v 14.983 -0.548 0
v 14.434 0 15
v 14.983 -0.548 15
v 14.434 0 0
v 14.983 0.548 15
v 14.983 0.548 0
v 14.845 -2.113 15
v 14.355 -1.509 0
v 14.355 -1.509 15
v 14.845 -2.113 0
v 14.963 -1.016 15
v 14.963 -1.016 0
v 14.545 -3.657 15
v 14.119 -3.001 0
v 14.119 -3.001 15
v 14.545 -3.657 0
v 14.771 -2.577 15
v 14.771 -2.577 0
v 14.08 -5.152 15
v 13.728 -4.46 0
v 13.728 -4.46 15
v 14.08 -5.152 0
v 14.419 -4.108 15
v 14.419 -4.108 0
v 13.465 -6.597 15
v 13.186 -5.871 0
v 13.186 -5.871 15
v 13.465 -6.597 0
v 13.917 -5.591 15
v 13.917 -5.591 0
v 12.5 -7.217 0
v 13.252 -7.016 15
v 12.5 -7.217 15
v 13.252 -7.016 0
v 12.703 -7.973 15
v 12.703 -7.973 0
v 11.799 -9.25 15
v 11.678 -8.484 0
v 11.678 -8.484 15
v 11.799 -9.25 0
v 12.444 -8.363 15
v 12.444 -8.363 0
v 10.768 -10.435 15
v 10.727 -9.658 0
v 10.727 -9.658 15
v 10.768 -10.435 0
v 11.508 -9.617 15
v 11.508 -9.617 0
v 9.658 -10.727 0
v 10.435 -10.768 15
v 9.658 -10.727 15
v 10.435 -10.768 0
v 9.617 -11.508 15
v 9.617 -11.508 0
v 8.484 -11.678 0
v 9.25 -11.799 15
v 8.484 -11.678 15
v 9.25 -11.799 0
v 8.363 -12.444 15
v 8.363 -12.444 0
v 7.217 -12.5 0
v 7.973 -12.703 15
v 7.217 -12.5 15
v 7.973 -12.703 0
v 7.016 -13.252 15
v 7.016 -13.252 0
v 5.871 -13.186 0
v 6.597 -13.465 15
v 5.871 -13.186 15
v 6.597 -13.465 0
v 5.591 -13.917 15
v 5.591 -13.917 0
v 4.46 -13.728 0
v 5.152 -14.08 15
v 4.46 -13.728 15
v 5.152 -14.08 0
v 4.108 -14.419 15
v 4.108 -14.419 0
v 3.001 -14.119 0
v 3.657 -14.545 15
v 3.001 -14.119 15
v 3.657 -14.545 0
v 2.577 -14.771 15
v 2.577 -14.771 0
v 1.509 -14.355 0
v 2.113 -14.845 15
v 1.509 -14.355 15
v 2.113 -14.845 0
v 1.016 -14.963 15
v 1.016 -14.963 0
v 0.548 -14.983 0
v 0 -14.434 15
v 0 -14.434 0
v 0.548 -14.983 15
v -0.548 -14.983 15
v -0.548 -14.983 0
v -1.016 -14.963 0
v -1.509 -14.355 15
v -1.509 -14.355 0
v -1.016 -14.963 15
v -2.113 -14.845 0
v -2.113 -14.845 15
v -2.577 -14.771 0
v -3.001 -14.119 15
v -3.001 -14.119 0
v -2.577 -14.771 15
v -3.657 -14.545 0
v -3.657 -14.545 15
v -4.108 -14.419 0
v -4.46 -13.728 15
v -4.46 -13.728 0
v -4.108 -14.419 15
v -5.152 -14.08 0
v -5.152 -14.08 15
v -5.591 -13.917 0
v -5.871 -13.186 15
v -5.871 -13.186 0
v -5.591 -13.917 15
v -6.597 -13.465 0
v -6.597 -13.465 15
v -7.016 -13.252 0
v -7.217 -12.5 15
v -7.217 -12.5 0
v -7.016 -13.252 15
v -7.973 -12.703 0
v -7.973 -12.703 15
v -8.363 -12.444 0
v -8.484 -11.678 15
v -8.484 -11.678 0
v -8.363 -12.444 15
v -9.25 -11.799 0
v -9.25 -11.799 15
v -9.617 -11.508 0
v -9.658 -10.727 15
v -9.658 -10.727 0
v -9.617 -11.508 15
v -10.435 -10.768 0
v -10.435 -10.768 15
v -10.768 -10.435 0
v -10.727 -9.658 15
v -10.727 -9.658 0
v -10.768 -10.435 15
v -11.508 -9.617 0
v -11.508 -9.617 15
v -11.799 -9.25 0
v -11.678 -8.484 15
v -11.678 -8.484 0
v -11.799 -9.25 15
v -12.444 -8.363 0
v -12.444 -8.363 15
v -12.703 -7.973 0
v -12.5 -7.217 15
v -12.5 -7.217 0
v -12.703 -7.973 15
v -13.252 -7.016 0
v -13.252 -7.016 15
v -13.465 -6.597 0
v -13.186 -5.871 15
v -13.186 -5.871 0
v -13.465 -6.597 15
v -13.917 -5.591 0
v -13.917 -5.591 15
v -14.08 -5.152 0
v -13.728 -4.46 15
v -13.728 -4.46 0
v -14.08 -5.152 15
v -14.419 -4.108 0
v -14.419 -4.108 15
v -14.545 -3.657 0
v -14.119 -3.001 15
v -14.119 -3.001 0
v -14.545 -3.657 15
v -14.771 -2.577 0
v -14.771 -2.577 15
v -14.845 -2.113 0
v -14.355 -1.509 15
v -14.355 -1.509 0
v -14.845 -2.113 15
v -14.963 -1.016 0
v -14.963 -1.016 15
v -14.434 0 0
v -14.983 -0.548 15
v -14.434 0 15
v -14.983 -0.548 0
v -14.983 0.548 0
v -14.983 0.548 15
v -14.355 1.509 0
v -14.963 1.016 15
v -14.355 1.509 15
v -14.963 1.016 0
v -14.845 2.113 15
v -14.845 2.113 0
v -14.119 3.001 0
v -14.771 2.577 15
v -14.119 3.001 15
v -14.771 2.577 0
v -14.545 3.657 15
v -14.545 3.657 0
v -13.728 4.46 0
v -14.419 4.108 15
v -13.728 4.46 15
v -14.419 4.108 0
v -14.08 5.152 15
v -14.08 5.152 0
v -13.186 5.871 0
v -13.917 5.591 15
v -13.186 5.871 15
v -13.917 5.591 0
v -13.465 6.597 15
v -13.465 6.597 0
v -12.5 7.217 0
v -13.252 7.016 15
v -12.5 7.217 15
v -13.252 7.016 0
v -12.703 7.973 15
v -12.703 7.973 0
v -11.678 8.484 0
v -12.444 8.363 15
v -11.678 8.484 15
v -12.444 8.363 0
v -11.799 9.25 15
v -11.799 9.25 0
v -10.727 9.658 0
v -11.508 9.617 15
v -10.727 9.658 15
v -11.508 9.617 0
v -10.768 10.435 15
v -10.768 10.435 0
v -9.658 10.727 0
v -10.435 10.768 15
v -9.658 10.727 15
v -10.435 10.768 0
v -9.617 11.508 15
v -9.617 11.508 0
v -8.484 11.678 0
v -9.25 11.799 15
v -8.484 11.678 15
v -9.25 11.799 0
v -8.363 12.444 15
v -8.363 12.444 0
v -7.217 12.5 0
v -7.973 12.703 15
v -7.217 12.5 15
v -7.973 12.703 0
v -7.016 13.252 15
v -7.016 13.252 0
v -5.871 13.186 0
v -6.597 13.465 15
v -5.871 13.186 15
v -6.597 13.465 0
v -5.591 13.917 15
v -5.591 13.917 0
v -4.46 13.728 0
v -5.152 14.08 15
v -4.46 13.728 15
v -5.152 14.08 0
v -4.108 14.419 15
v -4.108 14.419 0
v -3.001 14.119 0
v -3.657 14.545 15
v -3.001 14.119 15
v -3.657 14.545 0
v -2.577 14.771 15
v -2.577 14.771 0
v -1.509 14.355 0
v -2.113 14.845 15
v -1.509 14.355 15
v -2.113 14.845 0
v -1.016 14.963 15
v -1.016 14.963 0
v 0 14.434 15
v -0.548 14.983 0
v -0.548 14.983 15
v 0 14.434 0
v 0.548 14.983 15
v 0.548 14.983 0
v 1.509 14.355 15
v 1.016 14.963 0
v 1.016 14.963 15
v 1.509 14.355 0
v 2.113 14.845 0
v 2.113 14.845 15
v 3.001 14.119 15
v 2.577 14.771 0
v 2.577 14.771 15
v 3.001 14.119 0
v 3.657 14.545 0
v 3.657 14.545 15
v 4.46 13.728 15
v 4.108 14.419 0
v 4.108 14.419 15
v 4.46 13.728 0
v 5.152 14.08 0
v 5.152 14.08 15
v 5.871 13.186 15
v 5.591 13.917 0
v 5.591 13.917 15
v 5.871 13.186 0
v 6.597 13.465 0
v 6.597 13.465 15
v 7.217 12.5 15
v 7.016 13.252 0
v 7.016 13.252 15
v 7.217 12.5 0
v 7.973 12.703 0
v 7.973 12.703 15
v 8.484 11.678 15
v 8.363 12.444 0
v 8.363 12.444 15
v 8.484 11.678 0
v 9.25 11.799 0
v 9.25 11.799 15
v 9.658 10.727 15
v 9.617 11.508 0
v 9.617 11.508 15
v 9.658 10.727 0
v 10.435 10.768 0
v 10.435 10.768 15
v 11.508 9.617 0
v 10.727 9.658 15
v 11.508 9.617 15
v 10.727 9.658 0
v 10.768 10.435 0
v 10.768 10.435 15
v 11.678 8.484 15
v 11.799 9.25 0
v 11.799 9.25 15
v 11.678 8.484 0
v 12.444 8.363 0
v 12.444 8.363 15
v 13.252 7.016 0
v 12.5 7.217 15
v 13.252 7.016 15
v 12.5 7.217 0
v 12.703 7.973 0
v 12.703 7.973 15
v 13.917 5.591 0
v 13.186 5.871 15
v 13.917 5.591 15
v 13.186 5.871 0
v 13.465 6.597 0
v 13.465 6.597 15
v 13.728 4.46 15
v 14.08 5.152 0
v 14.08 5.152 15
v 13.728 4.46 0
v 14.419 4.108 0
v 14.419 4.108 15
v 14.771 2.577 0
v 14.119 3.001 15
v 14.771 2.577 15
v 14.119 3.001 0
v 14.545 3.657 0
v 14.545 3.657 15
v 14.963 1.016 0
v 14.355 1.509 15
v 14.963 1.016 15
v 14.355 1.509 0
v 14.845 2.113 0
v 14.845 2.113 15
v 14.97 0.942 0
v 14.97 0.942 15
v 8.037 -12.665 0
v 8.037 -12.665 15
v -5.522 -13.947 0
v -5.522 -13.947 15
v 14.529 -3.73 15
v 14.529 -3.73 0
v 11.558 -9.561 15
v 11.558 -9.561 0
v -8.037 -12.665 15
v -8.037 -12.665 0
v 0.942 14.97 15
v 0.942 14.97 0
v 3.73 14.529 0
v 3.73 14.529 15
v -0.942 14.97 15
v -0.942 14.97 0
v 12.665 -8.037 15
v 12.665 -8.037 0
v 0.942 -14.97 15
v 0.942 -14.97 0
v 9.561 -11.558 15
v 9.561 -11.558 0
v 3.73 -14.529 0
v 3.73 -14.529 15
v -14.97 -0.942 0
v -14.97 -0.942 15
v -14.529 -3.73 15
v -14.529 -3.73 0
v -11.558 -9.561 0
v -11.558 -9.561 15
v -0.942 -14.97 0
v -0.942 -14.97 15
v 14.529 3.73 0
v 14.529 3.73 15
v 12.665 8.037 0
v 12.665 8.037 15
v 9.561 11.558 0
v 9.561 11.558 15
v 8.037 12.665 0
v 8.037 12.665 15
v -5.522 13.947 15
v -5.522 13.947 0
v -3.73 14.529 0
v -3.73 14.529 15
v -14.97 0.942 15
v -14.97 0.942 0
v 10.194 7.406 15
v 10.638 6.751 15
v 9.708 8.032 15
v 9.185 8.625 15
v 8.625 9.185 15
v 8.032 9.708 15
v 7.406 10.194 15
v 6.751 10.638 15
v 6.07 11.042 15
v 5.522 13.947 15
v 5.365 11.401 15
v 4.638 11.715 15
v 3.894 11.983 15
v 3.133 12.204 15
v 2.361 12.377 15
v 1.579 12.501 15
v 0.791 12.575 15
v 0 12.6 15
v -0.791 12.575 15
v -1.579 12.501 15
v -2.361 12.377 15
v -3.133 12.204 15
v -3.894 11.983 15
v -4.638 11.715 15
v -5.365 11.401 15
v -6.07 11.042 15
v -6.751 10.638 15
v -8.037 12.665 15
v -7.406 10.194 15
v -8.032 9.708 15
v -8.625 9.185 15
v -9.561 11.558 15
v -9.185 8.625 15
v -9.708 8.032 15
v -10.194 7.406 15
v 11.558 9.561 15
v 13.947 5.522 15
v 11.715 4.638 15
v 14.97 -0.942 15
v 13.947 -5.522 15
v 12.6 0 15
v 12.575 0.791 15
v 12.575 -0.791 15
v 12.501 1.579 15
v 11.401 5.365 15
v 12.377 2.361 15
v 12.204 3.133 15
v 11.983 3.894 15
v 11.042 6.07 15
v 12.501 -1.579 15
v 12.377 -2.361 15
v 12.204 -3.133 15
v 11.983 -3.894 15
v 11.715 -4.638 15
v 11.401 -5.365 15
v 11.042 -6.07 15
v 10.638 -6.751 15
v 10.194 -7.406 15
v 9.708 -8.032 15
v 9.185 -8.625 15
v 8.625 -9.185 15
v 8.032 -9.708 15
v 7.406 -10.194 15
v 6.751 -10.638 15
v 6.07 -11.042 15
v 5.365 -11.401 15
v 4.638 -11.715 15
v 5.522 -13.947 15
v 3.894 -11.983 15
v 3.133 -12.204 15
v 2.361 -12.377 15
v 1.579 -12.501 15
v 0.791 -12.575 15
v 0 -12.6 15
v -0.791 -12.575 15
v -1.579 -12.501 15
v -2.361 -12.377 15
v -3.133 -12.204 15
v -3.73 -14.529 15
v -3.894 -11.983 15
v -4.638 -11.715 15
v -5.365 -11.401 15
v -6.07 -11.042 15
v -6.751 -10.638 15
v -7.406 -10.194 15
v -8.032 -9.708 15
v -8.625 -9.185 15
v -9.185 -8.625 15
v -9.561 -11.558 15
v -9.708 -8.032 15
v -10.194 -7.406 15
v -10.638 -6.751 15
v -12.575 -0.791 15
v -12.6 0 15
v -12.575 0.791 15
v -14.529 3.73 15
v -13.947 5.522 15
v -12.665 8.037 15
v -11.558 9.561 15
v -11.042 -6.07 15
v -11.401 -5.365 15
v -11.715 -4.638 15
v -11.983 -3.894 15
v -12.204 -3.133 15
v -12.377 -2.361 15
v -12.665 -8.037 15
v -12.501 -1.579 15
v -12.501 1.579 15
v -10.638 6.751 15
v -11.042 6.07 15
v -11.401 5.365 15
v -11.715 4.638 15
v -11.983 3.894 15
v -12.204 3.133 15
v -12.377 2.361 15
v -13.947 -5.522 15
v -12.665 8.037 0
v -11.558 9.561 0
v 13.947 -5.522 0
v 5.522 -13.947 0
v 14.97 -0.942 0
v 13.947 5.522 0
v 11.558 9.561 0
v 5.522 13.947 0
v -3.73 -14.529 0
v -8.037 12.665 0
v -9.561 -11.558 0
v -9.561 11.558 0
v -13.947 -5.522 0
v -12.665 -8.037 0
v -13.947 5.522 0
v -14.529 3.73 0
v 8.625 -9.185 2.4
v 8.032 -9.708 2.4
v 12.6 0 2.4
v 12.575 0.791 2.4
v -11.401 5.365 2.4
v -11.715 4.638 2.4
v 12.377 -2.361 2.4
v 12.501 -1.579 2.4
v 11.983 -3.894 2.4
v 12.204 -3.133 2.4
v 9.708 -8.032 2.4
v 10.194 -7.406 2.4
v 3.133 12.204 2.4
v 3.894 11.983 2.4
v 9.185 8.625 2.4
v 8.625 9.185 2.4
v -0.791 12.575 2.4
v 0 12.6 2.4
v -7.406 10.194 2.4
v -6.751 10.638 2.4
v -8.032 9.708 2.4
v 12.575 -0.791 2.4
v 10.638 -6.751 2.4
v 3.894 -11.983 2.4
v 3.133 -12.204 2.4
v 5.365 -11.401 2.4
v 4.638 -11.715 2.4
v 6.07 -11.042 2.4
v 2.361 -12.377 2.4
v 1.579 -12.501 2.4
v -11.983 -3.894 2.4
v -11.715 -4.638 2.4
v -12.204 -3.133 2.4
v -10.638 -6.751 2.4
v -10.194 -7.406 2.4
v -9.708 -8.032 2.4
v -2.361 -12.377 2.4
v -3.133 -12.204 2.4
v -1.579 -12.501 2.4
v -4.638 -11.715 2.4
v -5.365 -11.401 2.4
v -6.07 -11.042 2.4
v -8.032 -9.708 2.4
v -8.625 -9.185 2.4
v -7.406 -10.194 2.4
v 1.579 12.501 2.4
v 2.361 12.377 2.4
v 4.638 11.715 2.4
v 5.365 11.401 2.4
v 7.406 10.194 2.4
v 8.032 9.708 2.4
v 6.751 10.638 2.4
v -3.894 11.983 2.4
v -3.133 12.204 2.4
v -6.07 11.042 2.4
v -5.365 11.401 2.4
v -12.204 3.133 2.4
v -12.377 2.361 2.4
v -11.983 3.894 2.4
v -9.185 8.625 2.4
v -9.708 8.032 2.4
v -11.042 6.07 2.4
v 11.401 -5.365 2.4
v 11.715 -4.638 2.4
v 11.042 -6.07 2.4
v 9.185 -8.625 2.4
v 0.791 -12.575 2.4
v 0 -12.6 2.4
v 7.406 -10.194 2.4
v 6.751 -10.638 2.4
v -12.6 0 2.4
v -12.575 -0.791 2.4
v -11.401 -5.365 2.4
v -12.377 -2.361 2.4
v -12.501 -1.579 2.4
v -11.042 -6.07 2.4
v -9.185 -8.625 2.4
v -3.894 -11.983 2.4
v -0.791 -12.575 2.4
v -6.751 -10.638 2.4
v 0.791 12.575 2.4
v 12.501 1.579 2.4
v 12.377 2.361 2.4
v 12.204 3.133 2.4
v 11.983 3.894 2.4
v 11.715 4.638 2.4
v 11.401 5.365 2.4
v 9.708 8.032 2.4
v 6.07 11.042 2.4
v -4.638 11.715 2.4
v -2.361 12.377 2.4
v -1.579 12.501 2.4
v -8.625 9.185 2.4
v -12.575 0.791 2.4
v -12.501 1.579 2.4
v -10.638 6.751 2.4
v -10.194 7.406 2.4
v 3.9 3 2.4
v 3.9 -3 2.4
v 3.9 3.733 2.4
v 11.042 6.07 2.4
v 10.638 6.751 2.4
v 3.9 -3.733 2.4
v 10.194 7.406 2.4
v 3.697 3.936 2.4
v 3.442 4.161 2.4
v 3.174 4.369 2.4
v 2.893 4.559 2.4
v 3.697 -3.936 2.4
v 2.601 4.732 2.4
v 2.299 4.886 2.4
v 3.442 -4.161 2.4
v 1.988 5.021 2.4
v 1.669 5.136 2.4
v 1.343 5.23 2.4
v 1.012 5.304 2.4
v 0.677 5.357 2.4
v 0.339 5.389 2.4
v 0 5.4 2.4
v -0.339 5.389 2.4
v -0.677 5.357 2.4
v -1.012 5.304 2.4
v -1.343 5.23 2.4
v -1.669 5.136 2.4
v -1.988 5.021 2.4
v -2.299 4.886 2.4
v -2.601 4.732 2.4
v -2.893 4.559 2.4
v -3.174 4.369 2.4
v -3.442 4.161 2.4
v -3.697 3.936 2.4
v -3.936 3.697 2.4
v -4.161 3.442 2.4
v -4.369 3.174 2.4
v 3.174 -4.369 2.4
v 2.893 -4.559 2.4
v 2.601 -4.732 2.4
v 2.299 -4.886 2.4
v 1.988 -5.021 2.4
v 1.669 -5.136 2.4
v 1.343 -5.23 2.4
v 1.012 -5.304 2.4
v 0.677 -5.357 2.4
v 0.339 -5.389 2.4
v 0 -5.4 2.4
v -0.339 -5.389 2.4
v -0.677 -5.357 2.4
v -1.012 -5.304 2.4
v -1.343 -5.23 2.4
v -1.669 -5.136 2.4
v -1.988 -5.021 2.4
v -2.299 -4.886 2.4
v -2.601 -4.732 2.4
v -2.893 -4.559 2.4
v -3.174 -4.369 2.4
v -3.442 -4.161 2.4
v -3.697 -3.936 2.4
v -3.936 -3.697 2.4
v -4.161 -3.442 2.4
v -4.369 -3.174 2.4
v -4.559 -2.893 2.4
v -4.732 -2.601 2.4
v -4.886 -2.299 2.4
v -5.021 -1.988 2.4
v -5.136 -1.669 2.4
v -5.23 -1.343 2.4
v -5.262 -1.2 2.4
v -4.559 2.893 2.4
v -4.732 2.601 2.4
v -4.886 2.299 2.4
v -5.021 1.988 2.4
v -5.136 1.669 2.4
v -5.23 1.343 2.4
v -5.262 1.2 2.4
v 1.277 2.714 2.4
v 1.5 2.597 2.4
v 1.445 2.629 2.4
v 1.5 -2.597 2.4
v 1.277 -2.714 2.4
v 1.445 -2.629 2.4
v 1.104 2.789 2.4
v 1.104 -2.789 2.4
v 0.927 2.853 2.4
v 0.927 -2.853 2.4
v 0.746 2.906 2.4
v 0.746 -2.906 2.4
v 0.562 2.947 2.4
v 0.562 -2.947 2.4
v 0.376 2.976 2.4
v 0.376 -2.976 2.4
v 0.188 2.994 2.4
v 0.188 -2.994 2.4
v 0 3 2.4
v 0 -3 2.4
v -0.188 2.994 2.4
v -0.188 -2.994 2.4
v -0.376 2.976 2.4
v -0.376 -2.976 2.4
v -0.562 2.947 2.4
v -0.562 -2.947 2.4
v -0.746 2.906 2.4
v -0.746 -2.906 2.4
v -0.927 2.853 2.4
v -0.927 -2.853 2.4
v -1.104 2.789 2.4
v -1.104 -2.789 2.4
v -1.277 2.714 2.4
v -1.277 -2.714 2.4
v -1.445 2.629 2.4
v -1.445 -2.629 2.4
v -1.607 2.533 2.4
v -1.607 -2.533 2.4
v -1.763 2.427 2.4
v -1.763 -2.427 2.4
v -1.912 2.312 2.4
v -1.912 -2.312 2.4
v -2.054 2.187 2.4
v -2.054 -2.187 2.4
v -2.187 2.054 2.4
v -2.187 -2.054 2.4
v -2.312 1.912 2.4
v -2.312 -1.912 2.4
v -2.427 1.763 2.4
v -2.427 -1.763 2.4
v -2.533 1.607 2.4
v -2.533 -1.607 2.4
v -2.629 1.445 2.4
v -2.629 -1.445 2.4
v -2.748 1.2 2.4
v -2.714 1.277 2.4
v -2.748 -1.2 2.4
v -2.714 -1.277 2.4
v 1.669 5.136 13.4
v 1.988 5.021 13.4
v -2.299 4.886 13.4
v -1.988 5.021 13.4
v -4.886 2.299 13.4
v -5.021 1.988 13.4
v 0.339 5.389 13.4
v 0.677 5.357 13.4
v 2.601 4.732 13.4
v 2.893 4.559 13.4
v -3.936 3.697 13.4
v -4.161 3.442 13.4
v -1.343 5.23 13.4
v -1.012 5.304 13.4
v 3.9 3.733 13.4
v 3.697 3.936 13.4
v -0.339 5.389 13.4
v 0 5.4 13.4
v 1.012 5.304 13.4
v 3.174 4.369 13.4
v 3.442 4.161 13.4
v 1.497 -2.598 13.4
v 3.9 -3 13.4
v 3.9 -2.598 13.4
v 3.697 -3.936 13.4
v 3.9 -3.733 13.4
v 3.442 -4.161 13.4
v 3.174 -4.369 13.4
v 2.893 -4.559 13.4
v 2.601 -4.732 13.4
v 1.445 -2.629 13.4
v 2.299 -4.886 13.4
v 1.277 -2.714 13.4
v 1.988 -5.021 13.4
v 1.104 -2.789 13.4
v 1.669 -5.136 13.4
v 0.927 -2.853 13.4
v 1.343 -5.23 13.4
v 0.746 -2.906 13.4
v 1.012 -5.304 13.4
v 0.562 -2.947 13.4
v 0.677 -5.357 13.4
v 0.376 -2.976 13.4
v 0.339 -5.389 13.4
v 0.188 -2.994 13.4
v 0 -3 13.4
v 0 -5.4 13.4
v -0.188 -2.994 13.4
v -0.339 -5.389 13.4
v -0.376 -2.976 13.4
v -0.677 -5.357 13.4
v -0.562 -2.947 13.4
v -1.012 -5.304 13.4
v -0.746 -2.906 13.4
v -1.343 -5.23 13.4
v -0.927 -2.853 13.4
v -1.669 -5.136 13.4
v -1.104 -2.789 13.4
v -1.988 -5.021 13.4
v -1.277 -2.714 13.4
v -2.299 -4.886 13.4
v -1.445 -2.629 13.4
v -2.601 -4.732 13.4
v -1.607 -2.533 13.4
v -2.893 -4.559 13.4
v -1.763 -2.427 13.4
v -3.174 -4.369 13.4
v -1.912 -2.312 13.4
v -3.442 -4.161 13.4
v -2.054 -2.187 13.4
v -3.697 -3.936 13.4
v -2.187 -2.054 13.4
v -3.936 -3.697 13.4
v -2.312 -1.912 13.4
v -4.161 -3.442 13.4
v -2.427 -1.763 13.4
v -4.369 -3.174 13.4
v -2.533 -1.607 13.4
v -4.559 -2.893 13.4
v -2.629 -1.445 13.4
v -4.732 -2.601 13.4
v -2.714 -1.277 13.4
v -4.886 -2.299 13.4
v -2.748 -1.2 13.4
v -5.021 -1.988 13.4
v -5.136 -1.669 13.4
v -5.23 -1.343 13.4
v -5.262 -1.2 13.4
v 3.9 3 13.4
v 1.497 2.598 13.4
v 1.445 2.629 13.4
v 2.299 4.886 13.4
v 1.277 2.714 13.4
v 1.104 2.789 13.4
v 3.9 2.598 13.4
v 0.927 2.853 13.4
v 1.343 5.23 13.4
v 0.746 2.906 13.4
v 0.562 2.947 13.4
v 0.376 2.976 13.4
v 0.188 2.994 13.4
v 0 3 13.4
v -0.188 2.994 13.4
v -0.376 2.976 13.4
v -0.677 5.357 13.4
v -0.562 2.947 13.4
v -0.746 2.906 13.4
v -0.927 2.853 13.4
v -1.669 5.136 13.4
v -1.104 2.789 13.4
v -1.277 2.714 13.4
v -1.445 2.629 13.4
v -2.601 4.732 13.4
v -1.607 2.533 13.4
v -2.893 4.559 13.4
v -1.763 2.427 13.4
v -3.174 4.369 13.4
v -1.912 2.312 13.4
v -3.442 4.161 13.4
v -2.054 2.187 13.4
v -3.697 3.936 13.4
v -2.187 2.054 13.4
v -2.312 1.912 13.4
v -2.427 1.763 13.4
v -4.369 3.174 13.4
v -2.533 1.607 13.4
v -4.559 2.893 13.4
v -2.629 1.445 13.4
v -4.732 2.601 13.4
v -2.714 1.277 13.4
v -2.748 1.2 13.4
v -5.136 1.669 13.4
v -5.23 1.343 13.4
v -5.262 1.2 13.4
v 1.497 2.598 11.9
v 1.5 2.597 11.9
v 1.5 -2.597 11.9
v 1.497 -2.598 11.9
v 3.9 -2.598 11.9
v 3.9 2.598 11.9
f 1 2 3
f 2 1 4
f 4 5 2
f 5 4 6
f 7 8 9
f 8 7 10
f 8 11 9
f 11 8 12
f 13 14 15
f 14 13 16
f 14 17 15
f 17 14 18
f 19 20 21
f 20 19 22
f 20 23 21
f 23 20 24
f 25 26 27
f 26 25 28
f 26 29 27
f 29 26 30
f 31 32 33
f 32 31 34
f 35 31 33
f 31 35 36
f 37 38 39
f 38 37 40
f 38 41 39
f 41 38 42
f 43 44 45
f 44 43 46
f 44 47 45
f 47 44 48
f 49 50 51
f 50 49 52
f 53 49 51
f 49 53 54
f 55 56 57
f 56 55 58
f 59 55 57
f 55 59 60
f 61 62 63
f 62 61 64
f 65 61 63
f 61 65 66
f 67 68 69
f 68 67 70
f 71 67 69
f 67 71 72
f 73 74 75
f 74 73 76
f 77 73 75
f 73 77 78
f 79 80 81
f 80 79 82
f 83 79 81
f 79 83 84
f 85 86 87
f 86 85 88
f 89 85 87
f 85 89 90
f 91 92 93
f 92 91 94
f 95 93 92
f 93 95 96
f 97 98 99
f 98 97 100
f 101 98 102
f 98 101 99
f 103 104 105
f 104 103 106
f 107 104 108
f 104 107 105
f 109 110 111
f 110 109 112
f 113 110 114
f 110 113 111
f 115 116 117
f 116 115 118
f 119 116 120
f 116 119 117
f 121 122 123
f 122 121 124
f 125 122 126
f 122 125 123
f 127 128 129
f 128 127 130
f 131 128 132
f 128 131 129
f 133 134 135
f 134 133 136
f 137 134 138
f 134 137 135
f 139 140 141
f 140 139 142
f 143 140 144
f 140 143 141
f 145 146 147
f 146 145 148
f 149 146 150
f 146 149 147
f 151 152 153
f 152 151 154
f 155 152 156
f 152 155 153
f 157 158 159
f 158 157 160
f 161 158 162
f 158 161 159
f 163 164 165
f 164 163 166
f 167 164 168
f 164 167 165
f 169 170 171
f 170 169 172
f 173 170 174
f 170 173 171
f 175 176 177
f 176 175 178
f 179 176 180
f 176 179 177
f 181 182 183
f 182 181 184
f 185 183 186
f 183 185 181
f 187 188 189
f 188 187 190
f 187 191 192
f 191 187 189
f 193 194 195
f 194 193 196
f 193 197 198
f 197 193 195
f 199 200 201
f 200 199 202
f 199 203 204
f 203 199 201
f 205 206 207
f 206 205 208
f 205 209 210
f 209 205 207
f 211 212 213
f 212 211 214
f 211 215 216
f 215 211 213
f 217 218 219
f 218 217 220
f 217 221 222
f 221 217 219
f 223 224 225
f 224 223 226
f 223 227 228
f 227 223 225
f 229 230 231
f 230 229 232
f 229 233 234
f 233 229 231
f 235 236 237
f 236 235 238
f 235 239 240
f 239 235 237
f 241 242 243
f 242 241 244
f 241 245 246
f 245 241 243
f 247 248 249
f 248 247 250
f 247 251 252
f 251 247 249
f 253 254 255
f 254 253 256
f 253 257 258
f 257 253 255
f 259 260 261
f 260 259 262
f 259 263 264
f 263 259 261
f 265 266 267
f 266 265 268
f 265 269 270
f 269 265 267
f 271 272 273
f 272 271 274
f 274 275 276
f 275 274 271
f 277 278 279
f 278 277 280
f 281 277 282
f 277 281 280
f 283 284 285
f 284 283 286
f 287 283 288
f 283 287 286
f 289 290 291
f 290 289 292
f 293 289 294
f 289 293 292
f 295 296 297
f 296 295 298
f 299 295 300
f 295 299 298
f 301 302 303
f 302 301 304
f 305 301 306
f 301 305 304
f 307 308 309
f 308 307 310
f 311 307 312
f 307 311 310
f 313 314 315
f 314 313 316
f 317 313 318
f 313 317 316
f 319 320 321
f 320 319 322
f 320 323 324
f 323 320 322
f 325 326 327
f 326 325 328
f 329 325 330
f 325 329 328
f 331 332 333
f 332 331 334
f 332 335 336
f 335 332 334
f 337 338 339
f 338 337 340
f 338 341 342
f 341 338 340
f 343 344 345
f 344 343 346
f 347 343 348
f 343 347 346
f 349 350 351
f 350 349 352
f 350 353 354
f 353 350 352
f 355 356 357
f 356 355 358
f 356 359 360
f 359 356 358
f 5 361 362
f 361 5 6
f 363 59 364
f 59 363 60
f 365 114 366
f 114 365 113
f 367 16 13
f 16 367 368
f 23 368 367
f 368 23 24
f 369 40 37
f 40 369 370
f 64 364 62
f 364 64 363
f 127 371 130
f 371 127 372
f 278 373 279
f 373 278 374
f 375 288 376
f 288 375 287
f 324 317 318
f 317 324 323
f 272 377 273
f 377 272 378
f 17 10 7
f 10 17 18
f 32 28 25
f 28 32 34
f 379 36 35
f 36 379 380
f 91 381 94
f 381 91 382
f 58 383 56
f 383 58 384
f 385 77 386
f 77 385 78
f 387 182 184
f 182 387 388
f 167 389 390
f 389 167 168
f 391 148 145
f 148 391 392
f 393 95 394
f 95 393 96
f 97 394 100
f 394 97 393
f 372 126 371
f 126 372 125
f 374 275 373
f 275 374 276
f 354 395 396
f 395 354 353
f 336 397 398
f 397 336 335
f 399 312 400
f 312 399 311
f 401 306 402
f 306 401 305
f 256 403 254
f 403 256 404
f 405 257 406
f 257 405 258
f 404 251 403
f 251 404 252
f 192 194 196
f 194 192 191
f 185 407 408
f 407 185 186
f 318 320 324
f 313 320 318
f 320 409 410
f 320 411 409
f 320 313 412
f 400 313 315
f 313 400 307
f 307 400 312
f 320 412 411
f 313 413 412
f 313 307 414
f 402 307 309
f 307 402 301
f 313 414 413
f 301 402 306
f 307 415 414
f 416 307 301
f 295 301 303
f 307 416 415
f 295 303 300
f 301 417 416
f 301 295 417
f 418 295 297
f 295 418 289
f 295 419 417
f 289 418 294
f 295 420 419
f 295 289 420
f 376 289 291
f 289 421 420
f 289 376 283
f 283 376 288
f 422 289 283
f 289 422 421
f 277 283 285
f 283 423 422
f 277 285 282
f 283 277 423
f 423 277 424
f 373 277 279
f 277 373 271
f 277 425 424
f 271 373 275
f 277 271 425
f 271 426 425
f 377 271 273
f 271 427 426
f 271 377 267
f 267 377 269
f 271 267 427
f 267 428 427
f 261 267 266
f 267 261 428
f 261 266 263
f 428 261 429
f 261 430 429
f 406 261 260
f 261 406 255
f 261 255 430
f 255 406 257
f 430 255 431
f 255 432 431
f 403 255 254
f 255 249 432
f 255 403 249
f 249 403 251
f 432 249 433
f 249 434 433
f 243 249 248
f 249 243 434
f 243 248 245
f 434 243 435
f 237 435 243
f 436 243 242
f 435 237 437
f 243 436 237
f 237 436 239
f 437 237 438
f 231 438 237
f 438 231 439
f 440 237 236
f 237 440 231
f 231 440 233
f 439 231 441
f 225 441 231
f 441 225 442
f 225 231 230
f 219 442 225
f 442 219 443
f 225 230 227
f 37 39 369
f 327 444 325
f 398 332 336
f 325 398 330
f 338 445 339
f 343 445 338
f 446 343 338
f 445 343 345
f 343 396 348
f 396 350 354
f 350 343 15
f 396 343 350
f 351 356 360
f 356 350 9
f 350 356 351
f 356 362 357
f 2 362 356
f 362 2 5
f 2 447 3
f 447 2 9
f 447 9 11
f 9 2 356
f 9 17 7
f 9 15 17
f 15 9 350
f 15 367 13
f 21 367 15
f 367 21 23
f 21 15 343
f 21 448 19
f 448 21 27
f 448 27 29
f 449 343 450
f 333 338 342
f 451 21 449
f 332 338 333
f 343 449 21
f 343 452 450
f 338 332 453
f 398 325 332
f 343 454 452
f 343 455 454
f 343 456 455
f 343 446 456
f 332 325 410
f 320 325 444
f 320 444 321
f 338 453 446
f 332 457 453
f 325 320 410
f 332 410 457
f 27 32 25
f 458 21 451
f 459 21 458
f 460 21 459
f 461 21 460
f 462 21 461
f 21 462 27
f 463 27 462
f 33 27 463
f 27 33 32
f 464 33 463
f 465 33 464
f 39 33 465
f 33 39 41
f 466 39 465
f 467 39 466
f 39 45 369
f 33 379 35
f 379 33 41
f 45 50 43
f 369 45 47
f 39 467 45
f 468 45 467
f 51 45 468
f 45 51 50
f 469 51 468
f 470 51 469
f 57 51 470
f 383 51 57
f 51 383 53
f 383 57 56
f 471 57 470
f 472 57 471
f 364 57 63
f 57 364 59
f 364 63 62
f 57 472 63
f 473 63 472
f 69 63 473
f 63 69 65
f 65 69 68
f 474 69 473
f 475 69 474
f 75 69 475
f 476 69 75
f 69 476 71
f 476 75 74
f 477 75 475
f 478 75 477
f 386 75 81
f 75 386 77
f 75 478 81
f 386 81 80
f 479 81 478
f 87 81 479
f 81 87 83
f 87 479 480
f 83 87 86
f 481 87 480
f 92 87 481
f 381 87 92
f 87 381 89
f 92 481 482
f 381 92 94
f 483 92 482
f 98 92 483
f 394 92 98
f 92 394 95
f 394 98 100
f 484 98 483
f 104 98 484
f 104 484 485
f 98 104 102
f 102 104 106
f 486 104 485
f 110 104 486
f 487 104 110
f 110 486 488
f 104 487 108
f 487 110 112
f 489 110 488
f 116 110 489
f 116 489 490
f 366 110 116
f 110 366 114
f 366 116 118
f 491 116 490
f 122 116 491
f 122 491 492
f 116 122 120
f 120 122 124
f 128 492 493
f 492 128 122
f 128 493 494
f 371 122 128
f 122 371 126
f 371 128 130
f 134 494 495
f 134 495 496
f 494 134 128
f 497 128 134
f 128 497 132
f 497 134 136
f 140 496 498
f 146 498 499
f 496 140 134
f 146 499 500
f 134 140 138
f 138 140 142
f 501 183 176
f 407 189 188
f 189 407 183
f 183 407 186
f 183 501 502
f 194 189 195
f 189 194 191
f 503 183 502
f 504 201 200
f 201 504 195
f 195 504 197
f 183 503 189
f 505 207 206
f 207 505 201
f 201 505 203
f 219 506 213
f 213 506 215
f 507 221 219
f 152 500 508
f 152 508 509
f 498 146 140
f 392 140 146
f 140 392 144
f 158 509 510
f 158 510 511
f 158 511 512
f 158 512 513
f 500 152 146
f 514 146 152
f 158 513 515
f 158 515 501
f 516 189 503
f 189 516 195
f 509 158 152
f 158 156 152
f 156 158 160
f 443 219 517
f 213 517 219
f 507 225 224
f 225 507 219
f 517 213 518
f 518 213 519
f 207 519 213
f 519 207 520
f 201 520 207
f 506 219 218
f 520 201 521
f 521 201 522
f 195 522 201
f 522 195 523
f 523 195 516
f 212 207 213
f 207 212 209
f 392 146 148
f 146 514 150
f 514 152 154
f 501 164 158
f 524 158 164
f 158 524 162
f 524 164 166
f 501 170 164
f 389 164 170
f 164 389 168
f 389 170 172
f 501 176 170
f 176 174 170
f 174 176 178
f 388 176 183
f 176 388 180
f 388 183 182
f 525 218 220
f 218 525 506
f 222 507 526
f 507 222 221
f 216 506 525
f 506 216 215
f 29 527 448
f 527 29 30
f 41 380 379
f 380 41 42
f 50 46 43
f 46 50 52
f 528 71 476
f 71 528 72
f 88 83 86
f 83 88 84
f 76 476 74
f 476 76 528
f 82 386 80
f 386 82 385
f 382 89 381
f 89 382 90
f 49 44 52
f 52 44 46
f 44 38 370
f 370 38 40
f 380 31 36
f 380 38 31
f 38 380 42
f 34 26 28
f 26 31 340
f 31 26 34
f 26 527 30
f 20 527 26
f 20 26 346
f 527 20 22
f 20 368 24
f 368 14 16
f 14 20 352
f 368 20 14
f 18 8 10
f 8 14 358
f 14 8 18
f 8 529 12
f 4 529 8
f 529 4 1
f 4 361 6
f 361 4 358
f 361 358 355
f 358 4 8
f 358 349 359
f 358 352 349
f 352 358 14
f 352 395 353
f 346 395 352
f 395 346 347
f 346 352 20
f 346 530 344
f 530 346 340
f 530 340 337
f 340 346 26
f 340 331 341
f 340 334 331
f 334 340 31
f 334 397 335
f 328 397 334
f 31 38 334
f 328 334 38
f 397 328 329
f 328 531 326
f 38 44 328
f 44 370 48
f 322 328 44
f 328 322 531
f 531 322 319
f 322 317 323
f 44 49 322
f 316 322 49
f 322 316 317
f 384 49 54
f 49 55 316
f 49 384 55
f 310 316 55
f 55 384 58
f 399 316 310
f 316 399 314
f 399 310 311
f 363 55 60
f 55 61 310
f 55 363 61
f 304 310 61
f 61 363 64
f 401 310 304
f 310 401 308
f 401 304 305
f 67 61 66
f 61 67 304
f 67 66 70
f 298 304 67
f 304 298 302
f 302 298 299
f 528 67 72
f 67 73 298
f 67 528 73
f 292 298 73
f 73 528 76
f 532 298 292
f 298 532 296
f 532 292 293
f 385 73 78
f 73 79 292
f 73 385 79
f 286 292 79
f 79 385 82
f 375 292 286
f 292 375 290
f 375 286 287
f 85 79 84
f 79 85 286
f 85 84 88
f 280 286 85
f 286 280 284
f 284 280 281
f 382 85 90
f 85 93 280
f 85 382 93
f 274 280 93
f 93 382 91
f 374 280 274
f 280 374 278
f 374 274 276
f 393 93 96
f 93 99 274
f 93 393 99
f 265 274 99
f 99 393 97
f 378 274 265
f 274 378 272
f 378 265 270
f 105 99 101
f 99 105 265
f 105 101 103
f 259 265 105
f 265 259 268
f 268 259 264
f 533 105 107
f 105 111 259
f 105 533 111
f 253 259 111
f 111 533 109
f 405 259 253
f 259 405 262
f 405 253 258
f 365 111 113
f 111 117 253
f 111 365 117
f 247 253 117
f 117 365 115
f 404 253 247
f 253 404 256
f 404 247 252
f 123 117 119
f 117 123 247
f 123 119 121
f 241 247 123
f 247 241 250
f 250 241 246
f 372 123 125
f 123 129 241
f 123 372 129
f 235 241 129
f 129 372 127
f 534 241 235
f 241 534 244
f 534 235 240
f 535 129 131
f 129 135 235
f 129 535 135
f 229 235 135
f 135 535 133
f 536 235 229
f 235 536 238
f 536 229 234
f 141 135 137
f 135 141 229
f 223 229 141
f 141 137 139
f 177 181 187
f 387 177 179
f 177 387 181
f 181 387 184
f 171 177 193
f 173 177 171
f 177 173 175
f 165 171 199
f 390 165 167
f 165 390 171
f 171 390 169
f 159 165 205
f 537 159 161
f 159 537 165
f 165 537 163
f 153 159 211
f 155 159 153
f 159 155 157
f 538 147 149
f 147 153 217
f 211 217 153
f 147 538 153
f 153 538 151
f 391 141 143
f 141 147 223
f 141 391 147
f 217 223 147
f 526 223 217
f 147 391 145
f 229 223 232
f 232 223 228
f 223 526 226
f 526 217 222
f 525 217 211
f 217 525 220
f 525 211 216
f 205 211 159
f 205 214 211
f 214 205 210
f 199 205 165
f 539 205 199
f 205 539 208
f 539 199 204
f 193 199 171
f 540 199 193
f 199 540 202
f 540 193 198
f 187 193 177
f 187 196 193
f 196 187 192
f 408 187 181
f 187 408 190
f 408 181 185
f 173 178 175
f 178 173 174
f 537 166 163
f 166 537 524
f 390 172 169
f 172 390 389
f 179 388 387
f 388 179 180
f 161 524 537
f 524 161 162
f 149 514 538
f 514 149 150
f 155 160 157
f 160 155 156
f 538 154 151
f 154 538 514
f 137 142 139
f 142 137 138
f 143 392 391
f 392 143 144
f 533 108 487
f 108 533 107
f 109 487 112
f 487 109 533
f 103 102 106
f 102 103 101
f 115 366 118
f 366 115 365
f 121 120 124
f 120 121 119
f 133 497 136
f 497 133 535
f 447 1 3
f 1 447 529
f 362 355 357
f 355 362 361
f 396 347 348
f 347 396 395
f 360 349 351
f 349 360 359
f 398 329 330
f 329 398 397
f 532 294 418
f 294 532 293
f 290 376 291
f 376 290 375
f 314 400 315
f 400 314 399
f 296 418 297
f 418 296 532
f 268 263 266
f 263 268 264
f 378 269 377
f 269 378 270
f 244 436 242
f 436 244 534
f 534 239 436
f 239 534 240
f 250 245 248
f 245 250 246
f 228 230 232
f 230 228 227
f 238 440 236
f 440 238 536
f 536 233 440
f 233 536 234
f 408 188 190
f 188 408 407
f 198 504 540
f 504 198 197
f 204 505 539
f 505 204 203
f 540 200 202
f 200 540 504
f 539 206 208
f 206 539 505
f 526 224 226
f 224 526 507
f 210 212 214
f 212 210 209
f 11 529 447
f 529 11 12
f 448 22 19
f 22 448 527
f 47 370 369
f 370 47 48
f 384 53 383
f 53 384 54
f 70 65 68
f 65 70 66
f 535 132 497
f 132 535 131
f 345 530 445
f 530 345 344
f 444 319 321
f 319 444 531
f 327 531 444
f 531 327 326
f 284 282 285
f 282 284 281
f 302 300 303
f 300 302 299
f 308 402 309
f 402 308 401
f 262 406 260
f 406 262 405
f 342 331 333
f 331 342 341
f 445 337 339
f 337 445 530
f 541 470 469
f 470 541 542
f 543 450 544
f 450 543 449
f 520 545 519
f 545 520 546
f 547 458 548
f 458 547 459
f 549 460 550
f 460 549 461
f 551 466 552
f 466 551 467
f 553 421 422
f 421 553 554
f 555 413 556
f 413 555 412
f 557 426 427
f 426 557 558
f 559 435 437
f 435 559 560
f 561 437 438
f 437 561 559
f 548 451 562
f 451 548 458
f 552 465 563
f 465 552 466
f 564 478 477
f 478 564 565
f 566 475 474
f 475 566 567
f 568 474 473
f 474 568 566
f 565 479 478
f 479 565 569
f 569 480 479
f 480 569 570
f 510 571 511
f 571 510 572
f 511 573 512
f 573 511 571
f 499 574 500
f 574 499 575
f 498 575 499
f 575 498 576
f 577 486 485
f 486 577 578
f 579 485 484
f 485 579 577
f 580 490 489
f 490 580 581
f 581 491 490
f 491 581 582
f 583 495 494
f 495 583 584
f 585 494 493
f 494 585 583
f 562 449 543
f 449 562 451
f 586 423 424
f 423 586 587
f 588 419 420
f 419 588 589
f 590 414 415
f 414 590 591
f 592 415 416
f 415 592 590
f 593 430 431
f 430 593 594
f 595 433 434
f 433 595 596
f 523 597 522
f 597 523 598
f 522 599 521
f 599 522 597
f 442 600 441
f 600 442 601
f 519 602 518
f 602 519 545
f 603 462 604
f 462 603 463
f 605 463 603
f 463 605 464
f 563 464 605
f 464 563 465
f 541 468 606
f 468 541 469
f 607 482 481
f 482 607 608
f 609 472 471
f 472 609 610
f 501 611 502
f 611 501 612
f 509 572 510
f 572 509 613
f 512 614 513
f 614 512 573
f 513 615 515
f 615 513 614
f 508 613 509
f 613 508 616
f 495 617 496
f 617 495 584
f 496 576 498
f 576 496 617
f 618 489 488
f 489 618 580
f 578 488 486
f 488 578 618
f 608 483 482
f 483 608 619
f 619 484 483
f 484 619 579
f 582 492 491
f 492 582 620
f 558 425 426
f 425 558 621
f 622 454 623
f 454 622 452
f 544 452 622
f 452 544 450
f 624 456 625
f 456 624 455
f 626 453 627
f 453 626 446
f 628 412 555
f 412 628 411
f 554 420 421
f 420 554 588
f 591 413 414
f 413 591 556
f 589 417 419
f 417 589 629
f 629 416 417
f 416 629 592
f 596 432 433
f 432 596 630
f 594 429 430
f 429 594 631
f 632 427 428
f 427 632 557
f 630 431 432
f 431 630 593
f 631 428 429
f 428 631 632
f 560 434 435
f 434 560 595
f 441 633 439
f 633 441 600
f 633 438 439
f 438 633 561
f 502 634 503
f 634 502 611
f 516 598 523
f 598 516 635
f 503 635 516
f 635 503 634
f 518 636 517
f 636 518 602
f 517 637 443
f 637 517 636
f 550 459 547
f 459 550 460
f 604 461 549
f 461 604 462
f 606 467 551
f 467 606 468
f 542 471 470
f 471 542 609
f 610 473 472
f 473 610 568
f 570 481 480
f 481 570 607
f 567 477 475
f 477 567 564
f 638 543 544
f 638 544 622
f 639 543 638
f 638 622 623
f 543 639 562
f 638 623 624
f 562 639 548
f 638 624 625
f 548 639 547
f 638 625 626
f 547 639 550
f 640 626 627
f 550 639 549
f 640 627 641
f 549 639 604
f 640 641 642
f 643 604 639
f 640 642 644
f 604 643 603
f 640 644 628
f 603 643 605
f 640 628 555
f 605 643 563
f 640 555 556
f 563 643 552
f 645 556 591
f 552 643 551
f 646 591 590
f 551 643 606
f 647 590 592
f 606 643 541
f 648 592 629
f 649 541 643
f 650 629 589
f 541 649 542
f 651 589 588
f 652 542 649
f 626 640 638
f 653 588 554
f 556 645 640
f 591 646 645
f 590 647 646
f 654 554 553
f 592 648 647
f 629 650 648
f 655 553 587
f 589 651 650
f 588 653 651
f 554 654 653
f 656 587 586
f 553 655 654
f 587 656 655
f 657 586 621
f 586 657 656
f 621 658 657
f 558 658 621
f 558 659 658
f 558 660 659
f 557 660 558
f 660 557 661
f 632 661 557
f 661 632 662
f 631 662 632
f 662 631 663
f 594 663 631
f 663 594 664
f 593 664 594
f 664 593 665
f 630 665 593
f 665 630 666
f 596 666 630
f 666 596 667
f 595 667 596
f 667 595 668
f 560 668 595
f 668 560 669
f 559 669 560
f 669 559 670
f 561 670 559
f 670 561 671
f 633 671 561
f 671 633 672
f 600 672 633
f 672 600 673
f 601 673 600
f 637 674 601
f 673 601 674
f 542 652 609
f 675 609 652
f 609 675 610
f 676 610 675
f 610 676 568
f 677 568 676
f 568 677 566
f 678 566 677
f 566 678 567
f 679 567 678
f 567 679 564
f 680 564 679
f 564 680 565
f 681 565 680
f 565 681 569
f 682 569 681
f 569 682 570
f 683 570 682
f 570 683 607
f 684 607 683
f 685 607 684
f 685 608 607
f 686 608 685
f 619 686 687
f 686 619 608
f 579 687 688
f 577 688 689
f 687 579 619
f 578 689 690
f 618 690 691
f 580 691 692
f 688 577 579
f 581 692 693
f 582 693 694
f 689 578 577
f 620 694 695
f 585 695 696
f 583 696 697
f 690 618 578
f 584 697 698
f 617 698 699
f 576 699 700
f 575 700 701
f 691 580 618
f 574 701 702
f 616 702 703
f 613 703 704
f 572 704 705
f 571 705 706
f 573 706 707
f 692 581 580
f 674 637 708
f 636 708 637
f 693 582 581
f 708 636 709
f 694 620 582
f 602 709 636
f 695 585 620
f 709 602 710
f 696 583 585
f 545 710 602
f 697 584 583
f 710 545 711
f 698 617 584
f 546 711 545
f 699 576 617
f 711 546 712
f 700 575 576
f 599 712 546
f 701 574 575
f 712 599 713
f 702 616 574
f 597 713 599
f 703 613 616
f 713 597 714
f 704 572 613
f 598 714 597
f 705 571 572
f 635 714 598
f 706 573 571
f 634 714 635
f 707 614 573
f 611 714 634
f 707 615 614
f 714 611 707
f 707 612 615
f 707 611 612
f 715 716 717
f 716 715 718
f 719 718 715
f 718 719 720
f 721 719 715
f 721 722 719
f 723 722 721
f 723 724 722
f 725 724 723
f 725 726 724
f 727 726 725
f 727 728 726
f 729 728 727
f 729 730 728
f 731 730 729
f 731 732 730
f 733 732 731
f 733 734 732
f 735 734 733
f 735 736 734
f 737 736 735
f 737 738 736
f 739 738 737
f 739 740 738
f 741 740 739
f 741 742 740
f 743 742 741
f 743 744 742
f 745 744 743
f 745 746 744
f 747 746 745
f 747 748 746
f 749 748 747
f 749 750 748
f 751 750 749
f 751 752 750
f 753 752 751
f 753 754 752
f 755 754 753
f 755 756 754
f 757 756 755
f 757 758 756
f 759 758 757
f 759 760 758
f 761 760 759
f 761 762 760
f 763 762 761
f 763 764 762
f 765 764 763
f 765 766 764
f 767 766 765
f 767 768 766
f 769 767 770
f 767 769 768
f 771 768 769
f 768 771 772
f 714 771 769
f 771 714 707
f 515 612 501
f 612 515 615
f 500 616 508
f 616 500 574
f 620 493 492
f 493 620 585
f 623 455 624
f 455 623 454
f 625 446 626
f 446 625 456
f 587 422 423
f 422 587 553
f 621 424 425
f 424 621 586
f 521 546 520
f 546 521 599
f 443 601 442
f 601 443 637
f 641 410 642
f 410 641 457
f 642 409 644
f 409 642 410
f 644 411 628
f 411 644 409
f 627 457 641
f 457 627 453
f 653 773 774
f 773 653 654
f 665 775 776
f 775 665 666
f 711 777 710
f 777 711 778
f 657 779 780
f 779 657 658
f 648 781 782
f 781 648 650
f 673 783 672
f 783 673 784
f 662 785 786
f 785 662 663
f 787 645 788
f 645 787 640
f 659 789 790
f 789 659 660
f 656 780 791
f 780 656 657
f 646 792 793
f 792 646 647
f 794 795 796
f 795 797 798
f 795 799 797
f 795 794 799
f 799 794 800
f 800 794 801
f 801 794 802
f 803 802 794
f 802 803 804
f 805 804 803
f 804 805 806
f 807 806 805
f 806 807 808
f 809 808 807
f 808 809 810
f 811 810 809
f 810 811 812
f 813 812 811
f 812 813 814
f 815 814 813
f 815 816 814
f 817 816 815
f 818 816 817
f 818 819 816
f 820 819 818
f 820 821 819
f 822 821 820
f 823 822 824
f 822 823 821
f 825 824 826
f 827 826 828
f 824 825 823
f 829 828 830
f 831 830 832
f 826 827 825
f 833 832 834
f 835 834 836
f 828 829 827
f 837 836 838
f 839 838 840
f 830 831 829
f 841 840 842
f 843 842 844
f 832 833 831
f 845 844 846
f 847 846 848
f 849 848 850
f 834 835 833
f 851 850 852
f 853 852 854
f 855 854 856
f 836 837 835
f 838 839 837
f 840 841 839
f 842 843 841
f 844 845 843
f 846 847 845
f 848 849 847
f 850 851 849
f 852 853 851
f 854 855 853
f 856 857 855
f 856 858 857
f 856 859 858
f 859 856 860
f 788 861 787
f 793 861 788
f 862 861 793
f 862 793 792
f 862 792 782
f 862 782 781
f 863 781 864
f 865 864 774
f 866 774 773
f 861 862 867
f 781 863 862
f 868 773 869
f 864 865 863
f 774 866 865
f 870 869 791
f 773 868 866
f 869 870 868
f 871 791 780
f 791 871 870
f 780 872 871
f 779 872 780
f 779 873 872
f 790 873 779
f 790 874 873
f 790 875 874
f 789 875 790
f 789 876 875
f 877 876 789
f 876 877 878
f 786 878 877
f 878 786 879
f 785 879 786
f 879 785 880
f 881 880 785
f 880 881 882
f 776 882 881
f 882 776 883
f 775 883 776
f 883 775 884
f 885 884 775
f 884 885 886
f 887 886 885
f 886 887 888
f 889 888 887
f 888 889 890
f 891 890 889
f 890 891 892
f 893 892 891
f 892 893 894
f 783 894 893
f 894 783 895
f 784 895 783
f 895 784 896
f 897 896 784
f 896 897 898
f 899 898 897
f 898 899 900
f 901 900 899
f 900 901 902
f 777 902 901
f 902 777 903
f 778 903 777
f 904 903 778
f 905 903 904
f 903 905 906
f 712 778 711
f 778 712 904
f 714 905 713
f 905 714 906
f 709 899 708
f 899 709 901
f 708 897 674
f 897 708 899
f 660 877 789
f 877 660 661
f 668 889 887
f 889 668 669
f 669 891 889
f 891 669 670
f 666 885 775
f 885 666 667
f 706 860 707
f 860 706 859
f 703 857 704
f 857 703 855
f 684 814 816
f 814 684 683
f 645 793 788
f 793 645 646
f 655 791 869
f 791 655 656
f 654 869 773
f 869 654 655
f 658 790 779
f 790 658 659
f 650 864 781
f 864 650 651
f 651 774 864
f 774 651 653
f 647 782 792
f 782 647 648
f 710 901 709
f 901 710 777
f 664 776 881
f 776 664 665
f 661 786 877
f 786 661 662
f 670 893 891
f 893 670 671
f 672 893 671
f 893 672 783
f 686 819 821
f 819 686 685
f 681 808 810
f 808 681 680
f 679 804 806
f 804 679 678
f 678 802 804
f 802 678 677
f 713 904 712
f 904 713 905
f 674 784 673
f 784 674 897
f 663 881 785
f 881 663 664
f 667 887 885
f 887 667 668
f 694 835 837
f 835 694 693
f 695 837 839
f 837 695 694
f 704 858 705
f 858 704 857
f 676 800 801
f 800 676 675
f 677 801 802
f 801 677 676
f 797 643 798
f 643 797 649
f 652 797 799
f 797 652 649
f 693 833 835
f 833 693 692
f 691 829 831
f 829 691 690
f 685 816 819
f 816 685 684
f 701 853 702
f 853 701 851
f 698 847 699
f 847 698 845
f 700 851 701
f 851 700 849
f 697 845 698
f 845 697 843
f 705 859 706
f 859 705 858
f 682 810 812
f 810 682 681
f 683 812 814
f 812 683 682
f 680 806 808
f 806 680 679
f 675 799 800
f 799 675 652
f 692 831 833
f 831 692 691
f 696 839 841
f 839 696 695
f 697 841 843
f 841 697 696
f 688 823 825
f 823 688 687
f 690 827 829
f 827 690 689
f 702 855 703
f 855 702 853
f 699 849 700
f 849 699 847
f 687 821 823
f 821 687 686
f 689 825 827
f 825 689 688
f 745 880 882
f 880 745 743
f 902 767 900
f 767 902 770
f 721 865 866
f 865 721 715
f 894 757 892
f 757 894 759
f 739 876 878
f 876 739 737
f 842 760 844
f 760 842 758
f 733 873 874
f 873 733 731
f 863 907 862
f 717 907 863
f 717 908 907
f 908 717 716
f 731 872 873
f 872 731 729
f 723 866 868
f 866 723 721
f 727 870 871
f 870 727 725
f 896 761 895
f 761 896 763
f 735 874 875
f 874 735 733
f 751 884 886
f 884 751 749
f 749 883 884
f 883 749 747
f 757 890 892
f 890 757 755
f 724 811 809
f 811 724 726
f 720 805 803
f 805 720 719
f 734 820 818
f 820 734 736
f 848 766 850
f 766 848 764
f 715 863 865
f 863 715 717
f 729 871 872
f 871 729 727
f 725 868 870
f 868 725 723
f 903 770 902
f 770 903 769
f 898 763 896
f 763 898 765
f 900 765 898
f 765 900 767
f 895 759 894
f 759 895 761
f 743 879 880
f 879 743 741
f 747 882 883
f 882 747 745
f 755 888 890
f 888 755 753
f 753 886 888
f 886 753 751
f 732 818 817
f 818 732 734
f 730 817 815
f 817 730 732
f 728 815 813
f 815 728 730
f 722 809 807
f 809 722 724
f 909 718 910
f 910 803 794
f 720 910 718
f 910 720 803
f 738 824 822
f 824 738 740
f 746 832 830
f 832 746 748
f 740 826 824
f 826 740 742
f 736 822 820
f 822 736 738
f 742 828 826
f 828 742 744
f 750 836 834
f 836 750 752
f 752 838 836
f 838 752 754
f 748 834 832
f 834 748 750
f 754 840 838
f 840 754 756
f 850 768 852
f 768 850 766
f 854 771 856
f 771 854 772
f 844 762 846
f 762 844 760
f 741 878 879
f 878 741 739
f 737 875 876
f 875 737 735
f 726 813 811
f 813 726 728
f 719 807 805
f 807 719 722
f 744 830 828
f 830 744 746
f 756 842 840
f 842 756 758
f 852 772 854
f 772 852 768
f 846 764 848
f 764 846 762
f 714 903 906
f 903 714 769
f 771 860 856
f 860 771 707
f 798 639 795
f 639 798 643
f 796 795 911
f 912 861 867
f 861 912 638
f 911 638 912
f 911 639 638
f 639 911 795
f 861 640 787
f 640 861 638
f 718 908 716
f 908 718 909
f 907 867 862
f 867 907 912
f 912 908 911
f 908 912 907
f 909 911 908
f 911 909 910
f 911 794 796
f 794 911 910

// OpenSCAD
$fn = 100;

// Main dimensions of the knob
radius = 15;
height = 15;
thickness = 2.4;

// Number and sizing of the edge profile
nr_bumps = 60;
bump_size = 0.8;
bump_turn = 45;

// Mount dimensions
mount_radius = 3;
mount_height = height-thickness-1.6;
mount_cutout = 1.5;
mount_thickness = thickness;
cutout_bump = 1.5;

// Top decoration
profile_depth = .4;

module hull() {
    translate([0,0,.5*height])
        rotate([180,0,0])
            difference(){
                cylinder(h = height, r = radius, center = true);
                translate([0,0,-height/2-1])
                    cylinder(h = height-thickness+1,
                        r = radius-thickness, center = false);
                for (i = [0:nr_bumps-1]) {
                    rotate([0,0,i*360/nr_bumps])
                        translate([radius,0,0])
                            rotate([0,0,bump_turn])
                                cube([bump_size,
                                    bump_size,1.1*height],
                                    center = true);
                }
            }
}

module decoration_ring() {
    difference() {
        cylinder(h = profile_depth,
            r = radius/2, center = true);
        cylinder(h = profile_depth,
            r = radius/2-profile_depth,
            center = true);
    }
}

module mount() {
    // width of the flat part of the shaft of the knob
    flat_width=2*sqrt(pow(mount_radius,2)-
        pow(mount_radius-mount_cutout,2));
    
    translate([0,0,thickness])
        difference() {
            union(){
    // cylinder flattend at one side
                difference() {
                    cylinder(h = mount_height,
                        r = mount_radius+mount_thickness,
                        center = false);
                    cylinder(h = 1.2*mount_height,
                        r = mount_radius,
                        center = false);
                    translate([-mount_radius-mount_thickness,
                            -.5*mount_thickness,-.1*mount_height])
                        cube([1.1*mount_radius+mount_thickness,
                            mount_thickness,
                            1.2*mount_height],
                            center = false);
                    translate([mount_radius+mount_thickness+
                        -mount_cutout,
                        -mount_radius-mount_thickness,
                        -.1*mount_height])
                        cube([1.1*mount_radius+mount_thickness,
                            2*(mount_radius+mount_thickness),
                            1.2*mount_height],
                            center = false);
                }
    // flat part to match cutout in knob shaft
                translate([mount_radius-mount_cutout,-mount_radius,0])
                    cube([mount_thickness,mount_radius*2,mount_height],
                        center = false);
            }
            translate([mount_radius,0
                ,mount_height-0.5*cutout_bump])
                cube([mount_thickness*2,flat_width,
                cutout_bump],center = true);
        }
}
//difference() {
union() {
    hull();
    mount();
}
//cube([30,30,30]);
//}
